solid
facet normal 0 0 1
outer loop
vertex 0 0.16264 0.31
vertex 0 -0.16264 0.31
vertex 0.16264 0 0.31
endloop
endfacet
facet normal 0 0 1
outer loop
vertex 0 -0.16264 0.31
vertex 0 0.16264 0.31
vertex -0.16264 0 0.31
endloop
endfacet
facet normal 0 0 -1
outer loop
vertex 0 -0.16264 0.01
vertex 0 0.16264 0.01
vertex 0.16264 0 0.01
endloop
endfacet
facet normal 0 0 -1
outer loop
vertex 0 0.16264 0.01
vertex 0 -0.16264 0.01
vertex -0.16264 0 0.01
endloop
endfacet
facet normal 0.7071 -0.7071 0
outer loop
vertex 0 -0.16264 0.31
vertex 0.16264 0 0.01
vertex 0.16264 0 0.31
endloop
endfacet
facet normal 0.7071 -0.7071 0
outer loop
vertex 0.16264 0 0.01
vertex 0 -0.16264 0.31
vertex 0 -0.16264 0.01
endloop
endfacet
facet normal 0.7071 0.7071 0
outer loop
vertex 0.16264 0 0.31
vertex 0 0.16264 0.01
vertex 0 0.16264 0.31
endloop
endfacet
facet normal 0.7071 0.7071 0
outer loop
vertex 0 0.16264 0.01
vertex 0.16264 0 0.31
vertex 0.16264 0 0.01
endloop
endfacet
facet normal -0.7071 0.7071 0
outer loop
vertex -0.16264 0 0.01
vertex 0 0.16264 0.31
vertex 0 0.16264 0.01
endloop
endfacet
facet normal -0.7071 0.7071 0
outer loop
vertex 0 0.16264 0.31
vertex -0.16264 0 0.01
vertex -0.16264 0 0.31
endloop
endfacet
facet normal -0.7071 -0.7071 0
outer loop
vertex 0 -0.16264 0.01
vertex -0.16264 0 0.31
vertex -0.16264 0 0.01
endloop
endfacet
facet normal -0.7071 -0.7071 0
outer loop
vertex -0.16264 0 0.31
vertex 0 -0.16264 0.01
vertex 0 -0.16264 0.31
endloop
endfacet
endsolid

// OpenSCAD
centerW = .23;
centerD = .23;
centerH = .30;

translate([0,0,centerH/2 +1/100]){//center tower
    rotate([0,0,45]){ 
        cube([centerW,centerD,centerH],true);
    }
}
